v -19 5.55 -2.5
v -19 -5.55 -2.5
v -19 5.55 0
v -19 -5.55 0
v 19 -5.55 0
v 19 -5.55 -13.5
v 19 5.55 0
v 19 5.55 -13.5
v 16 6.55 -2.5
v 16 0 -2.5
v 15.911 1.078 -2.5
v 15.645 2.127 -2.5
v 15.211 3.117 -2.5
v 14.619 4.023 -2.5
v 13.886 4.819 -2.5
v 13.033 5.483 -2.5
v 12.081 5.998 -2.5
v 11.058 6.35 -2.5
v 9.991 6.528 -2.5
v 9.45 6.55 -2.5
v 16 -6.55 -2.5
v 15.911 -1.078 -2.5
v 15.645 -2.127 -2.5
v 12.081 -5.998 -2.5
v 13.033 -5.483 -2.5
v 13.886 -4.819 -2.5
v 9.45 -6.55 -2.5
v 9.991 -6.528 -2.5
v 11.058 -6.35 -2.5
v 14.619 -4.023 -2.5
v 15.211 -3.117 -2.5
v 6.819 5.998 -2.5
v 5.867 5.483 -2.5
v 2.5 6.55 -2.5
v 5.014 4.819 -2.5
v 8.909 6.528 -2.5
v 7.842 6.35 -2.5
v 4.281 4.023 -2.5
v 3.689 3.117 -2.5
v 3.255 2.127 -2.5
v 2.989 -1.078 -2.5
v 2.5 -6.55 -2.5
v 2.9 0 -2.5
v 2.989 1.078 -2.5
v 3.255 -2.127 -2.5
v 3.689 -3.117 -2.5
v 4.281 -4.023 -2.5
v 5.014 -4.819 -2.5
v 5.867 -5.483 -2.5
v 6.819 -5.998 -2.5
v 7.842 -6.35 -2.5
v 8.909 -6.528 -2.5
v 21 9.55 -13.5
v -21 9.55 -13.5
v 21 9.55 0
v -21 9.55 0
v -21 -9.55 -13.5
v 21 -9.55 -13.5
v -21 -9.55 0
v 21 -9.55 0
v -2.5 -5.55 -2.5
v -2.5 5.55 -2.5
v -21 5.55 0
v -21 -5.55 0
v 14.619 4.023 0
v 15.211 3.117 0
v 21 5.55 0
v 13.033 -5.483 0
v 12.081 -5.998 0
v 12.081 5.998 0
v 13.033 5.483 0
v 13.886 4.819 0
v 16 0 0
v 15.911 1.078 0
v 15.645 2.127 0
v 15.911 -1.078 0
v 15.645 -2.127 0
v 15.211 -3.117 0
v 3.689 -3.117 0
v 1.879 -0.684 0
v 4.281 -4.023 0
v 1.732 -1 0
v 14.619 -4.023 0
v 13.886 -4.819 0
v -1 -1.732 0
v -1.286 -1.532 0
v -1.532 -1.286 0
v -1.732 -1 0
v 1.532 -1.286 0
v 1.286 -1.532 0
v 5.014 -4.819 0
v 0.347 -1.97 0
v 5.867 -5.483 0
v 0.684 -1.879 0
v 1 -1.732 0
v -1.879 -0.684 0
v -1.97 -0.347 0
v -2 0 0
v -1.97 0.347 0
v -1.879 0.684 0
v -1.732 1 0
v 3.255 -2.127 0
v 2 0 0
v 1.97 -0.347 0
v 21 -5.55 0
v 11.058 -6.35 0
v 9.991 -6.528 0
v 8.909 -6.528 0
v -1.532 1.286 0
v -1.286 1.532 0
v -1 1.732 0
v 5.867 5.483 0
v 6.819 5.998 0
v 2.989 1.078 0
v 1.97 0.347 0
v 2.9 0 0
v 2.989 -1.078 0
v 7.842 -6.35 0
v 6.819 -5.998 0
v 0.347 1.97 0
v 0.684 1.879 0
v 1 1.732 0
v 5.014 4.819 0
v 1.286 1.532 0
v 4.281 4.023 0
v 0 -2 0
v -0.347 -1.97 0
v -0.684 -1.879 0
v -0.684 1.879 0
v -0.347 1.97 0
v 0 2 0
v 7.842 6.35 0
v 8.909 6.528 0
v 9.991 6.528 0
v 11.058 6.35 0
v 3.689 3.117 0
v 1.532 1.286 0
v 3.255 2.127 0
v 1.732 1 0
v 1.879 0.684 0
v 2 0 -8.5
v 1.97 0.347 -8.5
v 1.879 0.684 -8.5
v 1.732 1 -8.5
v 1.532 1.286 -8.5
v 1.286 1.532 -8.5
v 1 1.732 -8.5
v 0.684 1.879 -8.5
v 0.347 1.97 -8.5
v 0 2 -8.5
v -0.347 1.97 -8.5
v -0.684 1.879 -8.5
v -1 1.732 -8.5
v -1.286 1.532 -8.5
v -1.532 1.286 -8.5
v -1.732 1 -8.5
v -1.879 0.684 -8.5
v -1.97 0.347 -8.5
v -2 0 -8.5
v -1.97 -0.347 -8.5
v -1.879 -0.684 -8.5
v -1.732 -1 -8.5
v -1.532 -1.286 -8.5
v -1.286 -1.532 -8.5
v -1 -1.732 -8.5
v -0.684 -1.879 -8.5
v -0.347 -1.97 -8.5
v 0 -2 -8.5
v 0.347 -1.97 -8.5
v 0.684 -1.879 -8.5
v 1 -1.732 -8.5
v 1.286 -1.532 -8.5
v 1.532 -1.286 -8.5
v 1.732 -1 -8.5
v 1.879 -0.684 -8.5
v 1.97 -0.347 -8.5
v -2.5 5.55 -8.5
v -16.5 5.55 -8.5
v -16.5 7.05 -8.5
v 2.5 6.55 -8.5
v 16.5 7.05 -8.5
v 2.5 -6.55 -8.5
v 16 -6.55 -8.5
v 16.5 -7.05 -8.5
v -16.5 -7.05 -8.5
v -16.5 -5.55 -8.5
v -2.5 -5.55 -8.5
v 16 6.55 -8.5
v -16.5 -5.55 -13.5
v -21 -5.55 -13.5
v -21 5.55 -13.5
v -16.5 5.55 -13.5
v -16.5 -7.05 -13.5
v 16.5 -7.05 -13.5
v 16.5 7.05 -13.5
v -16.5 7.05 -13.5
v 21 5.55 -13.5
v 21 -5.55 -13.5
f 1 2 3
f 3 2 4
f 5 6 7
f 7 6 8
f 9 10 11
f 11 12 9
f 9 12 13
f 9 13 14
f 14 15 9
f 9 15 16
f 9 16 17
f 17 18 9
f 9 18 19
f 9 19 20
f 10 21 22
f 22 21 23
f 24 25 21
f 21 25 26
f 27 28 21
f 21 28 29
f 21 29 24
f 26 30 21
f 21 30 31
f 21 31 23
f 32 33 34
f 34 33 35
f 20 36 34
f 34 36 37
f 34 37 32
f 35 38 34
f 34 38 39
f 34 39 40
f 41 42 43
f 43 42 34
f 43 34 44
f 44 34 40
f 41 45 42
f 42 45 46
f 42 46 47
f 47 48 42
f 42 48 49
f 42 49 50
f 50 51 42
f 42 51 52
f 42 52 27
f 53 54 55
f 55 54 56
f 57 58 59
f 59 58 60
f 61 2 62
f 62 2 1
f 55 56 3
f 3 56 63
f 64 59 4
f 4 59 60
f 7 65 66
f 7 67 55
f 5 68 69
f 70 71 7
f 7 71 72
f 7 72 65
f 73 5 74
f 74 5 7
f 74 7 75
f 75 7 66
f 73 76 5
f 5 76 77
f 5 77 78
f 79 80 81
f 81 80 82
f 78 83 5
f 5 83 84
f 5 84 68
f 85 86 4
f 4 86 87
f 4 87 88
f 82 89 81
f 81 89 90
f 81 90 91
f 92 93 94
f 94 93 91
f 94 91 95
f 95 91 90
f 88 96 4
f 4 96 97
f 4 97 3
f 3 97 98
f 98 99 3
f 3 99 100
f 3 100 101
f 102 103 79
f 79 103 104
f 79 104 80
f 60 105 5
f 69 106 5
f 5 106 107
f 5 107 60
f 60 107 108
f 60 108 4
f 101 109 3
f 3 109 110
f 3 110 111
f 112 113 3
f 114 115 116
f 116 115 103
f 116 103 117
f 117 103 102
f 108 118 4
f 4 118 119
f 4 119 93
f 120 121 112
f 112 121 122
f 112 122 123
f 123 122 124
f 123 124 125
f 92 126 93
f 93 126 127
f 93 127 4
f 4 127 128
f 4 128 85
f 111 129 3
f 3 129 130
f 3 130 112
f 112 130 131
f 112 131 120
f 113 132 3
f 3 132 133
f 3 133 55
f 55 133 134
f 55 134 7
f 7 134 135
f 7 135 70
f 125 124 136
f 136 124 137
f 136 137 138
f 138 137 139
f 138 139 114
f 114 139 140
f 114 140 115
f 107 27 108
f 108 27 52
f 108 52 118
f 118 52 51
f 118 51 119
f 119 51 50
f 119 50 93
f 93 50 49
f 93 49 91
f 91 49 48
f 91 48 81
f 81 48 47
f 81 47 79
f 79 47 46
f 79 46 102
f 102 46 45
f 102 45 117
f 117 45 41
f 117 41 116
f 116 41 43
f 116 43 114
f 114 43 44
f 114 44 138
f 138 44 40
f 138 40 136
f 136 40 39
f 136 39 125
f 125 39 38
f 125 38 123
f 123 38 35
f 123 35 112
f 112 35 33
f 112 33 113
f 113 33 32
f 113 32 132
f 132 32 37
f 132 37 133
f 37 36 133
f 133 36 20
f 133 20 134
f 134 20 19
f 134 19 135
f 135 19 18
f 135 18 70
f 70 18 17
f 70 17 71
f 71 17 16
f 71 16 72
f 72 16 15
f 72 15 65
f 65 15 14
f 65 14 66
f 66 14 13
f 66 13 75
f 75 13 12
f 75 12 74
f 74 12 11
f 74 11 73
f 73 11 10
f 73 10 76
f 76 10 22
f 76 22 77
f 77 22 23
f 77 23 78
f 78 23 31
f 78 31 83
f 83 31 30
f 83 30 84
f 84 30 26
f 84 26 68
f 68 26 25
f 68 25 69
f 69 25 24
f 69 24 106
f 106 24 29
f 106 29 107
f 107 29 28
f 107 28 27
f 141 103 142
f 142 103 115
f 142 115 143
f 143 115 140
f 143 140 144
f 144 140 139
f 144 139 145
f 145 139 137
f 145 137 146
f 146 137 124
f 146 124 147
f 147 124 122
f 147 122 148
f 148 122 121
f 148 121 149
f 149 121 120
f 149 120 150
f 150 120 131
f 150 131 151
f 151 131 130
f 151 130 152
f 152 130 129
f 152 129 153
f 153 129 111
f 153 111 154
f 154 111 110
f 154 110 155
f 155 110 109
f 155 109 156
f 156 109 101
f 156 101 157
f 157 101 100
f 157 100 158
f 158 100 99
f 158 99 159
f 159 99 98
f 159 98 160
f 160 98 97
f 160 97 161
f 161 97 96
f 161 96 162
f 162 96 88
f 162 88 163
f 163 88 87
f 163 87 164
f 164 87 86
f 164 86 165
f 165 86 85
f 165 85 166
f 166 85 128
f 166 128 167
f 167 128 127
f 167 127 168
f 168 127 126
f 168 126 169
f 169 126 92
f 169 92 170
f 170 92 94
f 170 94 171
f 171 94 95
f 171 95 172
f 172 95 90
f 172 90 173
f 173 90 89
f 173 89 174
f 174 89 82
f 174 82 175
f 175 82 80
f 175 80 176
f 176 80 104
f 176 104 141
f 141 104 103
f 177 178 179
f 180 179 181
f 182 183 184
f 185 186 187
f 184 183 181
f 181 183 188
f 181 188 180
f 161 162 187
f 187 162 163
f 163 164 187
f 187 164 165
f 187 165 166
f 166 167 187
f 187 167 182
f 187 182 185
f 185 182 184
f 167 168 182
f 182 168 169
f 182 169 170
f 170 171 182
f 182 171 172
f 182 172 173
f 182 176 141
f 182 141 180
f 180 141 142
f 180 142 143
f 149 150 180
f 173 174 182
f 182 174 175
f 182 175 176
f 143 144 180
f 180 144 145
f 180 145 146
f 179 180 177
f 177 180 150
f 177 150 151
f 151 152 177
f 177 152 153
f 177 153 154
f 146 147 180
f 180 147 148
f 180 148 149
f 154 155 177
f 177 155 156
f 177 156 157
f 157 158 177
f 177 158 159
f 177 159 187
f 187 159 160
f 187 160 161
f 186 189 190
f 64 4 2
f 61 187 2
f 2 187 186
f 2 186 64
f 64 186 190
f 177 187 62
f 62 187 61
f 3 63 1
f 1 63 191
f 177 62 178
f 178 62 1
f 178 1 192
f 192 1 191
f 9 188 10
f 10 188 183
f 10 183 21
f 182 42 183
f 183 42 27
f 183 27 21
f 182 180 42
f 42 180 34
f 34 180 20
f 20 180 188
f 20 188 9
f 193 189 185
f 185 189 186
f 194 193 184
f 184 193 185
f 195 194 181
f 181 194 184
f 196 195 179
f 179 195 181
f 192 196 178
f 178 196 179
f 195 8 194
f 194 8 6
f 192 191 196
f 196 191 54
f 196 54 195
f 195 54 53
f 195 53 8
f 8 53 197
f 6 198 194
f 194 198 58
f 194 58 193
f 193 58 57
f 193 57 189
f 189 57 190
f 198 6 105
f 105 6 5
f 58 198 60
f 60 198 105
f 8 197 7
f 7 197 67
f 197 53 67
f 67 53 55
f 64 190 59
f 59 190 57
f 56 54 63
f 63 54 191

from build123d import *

# Parameters (mm, degrees)
SKETCH2_W           = 38
SKETCH2_H           = 19.1
SKETCH2_R           = 6.55
SKETCH2_R_2         = 2
BOSS_EXTRUDE1_DEPTH = 2.5
SKETCH3_R           = 2
SKETCH3_W           = 13.5
SKETCH3_H           = 13.1
BOSS_EXTRUDE2_DEPTH = 6
BOSS_EXTRUDE3_DEPTH = 5
SKETCH5_W           = 2
SKETCH5_H           = 4
BOSS_EXTRUDE4_DEPTH = 13.5


with BuildPart() as part:
    # Sketch2 → Boss-Extrude1 (new body)
    with BuildSketch(Plane.XY):
        Rectangle(SKETCH2_W, SKETCH2_H)
        with Locations((9.45, 0)):
            Circle(SKETCH2_R, mode=Mode.SUBTRACT)
        Circle(SKETCH2_R_2, mode=Mode.SUBTRACT)
    extrude(amount=-BOSS_EXTRUDE1_DEPTH)

    # Sketch3 → Boss-Extrude2 (add)
    with BuildSketch(Plane(origin=(0, 0, -2.5), x_dir=(-1, 0, 0), z_dir=(0, 0, -1))):
        Polygon((-19, -9.55), (19, -9.55), (19, -5.55), (2.5, -5.55), (2.5, 5.55), (19, 5.55), (19, 9.55), (-19, 9.55), align=None)
        with Locations(Location((0, 0, 0), (0, 0, 180))):
            Circle(SKETCH3_R, mode=Mode.SUBTRACT)
        with Locations((-9.25, 0)):
            Rectangle(SKETCH3_W, SKETCH3_H, mode=Mode.SUBTRACT)
    extrude(amount=BOSS_EXTRUDE2_DEPTH)

    # Sketch4 → Boss-Extrude3 (add)
    with BuildSketch(Plane(origin=(0, 0, -8.5), x_dir=(-1, 0, 0), z_dir=(0, 0, -1))):
        Polygon((19, 5.55), (16.5, 5.55), (16.5, 7.05), (-16.5, 7.05), (-16.5, -7.05), (16.5, -7.05), (16.5, -5.55), (19, -5.55), (19, -9.55), (-19, -9.55), (-19, 9.55), (19, 9.55), align=None)
    extrude(amount=BOSS_EXTRUDE3_DEPTH)

    # Sketch5 → Boss-Extrude4 (add)
    with BuildSketch(Plane(origin=(0, 0, -13.5), x_dir=(-1, 0, 0), z_dir=(0, 0, -1))):
        with Locations((-20, 7.55)):
            Rectangle(SKETCH5_W, SKETCH5_H)
        with Locations((-20, -7.55)):
            Rectangle(SKETCH5_W, SKETCH5_H)
    boss_extrude4 = extrude(amount=-BOSS_EXTRUDE4_DEPTH)

    # Mirror1: Boss-Extrude4 across plane
    add(boss_extrude4.mirror(Plane(origin=(0, 0, 0), x_dir=(0, 0, 1), z_dir=(1, 0, 0))))


solid = part.part
